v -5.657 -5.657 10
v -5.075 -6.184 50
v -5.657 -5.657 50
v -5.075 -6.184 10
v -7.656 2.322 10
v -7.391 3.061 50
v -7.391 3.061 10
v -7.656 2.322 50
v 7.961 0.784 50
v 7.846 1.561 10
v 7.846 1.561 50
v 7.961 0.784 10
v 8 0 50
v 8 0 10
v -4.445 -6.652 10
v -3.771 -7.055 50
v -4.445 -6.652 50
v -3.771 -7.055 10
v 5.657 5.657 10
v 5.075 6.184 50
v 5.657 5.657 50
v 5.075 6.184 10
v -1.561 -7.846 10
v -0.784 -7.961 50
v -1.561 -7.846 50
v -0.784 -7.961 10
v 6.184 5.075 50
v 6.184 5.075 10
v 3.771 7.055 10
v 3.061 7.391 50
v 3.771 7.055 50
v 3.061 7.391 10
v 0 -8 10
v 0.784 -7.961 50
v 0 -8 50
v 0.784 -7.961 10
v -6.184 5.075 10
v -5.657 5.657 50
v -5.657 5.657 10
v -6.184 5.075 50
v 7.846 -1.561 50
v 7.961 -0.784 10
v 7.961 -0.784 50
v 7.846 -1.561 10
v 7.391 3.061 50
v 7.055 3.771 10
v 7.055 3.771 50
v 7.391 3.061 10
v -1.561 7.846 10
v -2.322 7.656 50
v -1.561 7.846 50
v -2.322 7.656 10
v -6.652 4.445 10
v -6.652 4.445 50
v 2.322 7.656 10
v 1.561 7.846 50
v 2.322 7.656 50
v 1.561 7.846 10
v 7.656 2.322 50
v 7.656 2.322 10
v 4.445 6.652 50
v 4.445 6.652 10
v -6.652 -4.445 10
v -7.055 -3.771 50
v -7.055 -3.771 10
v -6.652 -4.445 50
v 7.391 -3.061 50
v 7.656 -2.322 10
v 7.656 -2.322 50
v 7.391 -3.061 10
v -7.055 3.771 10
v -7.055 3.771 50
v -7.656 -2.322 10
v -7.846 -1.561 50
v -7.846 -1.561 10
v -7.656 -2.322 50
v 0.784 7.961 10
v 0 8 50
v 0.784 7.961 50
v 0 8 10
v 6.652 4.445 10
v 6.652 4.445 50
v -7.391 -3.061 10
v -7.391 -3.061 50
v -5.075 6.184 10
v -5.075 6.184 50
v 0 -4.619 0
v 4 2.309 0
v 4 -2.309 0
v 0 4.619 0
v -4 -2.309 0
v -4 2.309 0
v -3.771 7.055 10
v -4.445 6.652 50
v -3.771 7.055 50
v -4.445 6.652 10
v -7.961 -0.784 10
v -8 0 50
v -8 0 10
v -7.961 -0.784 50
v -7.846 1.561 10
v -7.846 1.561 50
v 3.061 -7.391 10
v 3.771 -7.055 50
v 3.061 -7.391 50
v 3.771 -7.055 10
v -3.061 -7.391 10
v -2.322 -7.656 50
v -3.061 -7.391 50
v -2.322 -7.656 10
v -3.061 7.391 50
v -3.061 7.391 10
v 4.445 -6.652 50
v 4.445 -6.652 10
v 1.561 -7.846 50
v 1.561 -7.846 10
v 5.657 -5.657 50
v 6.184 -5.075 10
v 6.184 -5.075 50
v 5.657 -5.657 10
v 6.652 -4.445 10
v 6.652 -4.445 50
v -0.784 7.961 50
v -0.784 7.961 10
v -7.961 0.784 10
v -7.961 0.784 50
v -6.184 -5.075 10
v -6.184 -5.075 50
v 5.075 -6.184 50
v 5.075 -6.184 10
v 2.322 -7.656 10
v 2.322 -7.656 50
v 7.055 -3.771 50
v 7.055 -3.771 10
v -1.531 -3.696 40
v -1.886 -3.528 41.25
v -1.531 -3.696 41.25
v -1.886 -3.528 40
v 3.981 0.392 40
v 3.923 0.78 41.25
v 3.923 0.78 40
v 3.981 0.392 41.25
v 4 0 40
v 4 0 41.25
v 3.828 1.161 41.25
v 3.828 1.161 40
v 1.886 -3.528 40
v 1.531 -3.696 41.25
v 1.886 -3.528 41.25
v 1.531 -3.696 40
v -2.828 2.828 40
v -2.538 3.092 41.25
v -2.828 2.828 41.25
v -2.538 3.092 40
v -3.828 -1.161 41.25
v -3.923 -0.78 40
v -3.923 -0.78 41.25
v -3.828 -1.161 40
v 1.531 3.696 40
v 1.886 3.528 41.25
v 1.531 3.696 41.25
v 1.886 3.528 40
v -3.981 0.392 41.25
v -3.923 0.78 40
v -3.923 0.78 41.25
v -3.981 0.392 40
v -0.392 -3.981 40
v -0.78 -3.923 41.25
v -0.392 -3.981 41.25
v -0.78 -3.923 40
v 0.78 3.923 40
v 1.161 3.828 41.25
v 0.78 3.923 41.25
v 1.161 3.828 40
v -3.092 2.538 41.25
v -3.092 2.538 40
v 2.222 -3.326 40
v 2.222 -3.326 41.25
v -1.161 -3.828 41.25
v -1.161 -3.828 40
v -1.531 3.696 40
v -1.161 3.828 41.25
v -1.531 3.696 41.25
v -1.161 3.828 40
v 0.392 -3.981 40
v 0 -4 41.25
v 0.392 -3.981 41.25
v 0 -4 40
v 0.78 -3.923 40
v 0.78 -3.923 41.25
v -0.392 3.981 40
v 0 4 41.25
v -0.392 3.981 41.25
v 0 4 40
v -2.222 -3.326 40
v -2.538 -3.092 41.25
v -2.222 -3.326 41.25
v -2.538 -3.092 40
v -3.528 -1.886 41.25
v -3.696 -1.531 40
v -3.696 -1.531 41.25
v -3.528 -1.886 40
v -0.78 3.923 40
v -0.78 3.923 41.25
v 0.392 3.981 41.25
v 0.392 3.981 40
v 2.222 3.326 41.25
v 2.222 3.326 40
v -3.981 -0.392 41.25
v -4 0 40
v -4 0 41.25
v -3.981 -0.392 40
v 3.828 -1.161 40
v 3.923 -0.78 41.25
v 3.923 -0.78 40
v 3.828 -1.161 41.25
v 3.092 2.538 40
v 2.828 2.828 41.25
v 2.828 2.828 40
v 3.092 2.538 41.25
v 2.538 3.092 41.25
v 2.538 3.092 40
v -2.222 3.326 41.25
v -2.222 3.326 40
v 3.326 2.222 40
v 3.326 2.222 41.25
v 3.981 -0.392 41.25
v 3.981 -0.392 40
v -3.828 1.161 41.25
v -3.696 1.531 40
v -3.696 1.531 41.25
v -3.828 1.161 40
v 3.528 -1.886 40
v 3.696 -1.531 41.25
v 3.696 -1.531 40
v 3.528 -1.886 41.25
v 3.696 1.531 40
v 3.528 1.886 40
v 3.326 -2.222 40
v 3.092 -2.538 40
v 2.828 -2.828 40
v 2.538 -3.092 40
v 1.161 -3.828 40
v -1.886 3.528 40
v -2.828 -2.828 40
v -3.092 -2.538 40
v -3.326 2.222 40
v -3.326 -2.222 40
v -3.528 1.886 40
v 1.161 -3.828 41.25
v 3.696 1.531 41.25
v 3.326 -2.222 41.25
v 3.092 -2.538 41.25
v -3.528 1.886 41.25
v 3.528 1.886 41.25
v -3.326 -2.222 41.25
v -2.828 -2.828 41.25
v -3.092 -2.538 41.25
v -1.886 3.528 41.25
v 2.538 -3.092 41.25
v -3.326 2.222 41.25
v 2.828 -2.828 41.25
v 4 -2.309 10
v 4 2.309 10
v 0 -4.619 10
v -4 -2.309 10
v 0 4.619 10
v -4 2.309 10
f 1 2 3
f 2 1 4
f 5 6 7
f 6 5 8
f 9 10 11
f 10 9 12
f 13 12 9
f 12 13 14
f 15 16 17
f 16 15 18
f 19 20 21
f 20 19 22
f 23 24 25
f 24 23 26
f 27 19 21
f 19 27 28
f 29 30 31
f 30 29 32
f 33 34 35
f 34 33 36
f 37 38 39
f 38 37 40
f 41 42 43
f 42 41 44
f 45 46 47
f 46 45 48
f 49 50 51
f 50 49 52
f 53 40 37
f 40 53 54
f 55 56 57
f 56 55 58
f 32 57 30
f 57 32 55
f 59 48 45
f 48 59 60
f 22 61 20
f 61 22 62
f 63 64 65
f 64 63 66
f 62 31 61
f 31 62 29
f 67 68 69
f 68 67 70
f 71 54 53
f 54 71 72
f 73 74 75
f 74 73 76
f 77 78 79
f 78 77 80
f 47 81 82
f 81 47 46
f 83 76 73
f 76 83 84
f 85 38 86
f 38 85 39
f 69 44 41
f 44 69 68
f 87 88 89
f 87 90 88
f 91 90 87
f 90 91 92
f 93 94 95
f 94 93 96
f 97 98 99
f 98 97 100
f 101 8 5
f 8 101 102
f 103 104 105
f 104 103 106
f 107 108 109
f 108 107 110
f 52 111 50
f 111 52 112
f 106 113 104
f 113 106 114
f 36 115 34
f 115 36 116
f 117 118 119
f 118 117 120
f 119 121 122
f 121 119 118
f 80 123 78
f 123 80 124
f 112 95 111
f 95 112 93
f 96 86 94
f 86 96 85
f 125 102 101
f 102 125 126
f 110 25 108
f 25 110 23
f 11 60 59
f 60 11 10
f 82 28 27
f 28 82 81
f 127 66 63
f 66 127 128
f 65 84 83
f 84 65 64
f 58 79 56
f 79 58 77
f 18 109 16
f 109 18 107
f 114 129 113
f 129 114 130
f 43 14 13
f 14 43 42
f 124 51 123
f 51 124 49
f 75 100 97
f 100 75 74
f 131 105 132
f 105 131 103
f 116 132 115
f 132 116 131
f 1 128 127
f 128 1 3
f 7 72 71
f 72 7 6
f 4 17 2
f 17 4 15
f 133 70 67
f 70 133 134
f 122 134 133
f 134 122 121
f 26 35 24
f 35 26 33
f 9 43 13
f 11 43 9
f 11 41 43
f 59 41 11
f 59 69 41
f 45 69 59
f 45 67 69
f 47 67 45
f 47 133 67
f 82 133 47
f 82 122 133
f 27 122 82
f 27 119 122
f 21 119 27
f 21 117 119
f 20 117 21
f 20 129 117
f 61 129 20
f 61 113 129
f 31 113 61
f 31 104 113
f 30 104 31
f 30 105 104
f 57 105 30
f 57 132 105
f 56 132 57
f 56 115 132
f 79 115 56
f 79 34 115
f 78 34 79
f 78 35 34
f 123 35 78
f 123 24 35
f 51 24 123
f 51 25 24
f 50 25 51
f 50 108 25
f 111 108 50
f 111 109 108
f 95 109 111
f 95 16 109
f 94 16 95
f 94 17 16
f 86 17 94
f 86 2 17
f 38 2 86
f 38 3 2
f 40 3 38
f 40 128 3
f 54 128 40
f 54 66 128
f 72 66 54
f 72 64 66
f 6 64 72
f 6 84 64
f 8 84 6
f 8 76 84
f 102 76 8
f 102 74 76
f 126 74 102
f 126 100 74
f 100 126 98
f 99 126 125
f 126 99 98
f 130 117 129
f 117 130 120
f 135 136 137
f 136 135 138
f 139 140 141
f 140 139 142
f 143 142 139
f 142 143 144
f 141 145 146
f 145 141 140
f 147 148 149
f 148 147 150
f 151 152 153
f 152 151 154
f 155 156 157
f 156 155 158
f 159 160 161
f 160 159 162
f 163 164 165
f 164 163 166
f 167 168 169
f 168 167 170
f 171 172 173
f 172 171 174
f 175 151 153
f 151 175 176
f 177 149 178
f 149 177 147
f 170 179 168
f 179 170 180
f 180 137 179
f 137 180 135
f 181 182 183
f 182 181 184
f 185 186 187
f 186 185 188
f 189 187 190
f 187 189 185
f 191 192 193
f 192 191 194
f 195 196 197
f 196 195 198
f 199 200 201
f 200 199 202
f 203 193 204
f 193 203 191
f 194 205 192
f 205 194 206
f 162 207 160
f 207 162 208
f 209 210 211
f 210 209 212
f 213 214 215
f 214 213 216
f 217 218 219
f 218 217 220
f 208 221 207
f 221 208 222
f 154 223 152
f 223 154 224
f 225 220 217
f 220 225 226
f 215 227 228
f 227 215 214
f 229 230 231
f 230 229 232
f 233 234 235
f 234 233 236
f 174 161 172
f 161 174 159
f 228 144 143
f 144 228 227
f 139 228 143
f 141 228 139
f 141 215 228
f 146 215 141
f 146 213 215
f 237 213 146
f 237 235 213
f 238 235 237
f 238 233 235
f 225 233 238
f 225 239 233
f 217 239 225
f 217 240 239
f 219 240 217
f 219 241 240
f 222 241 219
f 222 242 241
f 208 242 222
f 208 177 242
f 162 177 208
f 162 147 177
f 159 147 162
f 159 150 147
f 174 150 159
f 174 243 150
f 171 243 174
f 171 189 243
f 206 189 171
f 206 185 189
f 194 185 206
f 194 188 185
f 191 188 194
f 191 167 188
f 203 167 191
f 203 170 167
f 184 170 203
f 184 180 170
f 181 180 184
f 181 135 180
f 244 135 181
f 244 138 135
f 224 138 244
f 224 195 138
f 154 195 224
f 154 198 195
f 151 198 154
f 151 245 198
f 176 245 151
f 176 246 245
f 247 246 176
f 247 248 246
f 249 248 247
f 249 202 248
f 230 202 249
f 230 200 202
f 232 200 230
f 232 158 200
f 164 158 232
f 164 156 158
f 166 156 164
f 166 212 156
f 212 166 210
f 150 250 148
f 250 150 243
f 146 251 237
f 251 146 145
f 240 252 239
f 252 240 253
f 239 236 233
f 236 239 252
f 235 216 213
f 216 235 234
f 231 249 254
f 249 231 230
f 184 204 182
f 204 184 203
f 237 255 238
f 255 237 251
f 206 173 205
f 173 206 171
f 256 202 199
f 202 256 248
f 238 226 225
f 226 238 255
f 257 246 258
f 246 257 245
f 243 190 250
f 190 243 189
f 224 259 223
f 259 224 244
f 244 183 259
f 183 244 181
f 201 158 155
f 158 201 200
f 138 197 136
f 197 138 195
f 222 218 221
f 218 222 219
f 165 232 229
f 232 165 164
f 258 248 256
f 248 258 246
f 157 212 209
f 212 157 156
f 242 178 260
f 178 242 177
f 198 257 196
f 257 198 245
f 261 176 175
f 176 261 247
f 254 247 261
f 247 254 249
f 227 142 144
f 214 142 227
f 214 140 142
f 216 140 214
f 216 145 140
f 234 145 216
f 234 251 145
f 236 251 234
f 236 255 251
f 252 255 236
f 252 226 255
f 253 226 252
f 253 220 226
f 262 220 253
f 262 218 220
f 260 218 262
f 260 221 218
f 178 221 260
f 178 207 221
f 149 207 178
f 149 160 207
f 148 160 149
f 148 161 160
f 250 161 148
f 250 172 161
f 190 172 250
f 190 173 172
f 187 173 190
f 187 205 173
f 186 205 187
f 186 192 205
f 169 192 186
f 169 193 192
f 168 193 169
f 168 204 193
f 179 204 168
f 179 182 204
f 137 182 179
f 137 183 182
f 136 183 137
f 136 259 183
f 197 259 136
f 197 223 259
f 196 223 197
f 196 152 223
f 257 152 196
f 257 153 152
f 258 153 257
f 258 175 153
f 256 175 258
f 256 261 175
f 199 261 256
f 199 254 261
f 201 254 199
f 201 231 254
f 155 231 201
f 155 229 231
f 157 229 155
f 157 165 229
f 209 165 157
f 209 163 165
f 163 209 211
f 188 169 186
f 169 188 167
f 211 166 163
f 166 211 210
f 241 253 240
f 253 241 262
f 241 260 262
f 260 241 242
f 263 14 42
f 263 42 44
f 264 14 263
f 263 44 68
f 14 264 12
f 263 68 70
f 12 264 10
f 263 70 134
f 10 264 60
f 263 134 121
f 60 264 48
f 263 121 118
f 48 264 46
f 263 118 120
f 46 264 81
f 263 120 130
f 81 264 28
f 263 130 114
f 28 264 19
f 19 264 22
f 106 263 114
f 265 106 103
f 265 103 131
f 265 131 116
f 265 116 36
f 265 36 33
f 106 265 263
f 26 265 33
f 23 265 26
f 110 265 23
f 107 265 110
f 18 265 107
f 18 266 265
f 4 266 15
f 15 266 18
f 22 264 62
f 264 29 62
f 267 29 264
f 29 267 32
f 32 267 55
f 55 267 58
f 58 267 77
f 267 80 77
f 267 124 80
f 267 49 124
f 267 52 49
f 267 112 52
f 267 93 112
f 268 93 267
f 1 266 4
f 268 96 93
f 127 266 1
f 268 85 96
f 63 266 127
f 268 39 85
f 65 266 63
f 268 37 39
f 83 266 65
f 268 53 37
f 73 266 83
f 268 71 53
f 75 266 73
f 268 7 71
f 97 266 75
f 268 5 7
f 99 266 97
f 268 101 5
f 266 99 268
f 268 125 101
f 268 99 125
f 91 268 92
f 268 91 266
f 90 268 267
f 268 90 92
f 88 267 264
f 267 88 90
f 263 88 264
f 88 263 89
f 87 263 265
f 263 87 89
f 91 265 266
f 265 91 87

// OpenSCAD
// Bolt dimensions in mm
thread_diameter = 8; // M8 thread diameter
head_diameter = 16; // Hex head diameter
head_height = 10; // Hex head height
bolt_length = 50; // Total bolt length
thread_length = 30; // Length of threaded section
thread_pitch = 1.25; // M8 thread pitch
thread_h = 1.5; // Thread height
$fn=64; // Smoothness of circles/cylinders

// 2D tooth profile cross-section for thread
module tooth_profile(r, tooth_h) {
  circle(r=r);
  for (i = [0:5]) {
    rotate(i * 60) translate([r, 0])
      polygon([[-thread_diameter/8,-tooth_h/2],[thread_diameter/8,-tooth_h/2],[thread_diameter/8,tooth_h/2],[-thread_diameter/8,tooth_h/2]]);
  }
}

// Extrude to full 3D thread
module thread_section(d, h, pitch, tooth_h) {
  rotate_extrude() tooth_profile(d/2, tooth_h);
  translate([0, 0, h]) cylinder(r=d/2, h=pitch, $fn=64);
}

// Bolt head
module hex_head(d, h) {
  linear_extrude(height=h) hexagon(d);
}

// Hexagon profile
module hexagon(size) {
  for (i = [0:5]) {
    rotate(i * 60) translate([size/2, 0]) square([size/2, size * sqrt(3)/2], center=true);
  }
}

// Main bolt assembly
difference() {
  // Full bolt cylinder
  cylinder(r=head_diameter/2, h=bolt_length, $fn=64);
  
  // Threaded section
  translate([0, 0, head_height]) thread_section(thread_diameter, thread_length, thread_pitch, thread_h);
  
  // Hex head
  hex_head(head_diameter, head_height);
  
  // Center the bolt at the origin
  translate([0, 0, -bolt_length/2]);
}
